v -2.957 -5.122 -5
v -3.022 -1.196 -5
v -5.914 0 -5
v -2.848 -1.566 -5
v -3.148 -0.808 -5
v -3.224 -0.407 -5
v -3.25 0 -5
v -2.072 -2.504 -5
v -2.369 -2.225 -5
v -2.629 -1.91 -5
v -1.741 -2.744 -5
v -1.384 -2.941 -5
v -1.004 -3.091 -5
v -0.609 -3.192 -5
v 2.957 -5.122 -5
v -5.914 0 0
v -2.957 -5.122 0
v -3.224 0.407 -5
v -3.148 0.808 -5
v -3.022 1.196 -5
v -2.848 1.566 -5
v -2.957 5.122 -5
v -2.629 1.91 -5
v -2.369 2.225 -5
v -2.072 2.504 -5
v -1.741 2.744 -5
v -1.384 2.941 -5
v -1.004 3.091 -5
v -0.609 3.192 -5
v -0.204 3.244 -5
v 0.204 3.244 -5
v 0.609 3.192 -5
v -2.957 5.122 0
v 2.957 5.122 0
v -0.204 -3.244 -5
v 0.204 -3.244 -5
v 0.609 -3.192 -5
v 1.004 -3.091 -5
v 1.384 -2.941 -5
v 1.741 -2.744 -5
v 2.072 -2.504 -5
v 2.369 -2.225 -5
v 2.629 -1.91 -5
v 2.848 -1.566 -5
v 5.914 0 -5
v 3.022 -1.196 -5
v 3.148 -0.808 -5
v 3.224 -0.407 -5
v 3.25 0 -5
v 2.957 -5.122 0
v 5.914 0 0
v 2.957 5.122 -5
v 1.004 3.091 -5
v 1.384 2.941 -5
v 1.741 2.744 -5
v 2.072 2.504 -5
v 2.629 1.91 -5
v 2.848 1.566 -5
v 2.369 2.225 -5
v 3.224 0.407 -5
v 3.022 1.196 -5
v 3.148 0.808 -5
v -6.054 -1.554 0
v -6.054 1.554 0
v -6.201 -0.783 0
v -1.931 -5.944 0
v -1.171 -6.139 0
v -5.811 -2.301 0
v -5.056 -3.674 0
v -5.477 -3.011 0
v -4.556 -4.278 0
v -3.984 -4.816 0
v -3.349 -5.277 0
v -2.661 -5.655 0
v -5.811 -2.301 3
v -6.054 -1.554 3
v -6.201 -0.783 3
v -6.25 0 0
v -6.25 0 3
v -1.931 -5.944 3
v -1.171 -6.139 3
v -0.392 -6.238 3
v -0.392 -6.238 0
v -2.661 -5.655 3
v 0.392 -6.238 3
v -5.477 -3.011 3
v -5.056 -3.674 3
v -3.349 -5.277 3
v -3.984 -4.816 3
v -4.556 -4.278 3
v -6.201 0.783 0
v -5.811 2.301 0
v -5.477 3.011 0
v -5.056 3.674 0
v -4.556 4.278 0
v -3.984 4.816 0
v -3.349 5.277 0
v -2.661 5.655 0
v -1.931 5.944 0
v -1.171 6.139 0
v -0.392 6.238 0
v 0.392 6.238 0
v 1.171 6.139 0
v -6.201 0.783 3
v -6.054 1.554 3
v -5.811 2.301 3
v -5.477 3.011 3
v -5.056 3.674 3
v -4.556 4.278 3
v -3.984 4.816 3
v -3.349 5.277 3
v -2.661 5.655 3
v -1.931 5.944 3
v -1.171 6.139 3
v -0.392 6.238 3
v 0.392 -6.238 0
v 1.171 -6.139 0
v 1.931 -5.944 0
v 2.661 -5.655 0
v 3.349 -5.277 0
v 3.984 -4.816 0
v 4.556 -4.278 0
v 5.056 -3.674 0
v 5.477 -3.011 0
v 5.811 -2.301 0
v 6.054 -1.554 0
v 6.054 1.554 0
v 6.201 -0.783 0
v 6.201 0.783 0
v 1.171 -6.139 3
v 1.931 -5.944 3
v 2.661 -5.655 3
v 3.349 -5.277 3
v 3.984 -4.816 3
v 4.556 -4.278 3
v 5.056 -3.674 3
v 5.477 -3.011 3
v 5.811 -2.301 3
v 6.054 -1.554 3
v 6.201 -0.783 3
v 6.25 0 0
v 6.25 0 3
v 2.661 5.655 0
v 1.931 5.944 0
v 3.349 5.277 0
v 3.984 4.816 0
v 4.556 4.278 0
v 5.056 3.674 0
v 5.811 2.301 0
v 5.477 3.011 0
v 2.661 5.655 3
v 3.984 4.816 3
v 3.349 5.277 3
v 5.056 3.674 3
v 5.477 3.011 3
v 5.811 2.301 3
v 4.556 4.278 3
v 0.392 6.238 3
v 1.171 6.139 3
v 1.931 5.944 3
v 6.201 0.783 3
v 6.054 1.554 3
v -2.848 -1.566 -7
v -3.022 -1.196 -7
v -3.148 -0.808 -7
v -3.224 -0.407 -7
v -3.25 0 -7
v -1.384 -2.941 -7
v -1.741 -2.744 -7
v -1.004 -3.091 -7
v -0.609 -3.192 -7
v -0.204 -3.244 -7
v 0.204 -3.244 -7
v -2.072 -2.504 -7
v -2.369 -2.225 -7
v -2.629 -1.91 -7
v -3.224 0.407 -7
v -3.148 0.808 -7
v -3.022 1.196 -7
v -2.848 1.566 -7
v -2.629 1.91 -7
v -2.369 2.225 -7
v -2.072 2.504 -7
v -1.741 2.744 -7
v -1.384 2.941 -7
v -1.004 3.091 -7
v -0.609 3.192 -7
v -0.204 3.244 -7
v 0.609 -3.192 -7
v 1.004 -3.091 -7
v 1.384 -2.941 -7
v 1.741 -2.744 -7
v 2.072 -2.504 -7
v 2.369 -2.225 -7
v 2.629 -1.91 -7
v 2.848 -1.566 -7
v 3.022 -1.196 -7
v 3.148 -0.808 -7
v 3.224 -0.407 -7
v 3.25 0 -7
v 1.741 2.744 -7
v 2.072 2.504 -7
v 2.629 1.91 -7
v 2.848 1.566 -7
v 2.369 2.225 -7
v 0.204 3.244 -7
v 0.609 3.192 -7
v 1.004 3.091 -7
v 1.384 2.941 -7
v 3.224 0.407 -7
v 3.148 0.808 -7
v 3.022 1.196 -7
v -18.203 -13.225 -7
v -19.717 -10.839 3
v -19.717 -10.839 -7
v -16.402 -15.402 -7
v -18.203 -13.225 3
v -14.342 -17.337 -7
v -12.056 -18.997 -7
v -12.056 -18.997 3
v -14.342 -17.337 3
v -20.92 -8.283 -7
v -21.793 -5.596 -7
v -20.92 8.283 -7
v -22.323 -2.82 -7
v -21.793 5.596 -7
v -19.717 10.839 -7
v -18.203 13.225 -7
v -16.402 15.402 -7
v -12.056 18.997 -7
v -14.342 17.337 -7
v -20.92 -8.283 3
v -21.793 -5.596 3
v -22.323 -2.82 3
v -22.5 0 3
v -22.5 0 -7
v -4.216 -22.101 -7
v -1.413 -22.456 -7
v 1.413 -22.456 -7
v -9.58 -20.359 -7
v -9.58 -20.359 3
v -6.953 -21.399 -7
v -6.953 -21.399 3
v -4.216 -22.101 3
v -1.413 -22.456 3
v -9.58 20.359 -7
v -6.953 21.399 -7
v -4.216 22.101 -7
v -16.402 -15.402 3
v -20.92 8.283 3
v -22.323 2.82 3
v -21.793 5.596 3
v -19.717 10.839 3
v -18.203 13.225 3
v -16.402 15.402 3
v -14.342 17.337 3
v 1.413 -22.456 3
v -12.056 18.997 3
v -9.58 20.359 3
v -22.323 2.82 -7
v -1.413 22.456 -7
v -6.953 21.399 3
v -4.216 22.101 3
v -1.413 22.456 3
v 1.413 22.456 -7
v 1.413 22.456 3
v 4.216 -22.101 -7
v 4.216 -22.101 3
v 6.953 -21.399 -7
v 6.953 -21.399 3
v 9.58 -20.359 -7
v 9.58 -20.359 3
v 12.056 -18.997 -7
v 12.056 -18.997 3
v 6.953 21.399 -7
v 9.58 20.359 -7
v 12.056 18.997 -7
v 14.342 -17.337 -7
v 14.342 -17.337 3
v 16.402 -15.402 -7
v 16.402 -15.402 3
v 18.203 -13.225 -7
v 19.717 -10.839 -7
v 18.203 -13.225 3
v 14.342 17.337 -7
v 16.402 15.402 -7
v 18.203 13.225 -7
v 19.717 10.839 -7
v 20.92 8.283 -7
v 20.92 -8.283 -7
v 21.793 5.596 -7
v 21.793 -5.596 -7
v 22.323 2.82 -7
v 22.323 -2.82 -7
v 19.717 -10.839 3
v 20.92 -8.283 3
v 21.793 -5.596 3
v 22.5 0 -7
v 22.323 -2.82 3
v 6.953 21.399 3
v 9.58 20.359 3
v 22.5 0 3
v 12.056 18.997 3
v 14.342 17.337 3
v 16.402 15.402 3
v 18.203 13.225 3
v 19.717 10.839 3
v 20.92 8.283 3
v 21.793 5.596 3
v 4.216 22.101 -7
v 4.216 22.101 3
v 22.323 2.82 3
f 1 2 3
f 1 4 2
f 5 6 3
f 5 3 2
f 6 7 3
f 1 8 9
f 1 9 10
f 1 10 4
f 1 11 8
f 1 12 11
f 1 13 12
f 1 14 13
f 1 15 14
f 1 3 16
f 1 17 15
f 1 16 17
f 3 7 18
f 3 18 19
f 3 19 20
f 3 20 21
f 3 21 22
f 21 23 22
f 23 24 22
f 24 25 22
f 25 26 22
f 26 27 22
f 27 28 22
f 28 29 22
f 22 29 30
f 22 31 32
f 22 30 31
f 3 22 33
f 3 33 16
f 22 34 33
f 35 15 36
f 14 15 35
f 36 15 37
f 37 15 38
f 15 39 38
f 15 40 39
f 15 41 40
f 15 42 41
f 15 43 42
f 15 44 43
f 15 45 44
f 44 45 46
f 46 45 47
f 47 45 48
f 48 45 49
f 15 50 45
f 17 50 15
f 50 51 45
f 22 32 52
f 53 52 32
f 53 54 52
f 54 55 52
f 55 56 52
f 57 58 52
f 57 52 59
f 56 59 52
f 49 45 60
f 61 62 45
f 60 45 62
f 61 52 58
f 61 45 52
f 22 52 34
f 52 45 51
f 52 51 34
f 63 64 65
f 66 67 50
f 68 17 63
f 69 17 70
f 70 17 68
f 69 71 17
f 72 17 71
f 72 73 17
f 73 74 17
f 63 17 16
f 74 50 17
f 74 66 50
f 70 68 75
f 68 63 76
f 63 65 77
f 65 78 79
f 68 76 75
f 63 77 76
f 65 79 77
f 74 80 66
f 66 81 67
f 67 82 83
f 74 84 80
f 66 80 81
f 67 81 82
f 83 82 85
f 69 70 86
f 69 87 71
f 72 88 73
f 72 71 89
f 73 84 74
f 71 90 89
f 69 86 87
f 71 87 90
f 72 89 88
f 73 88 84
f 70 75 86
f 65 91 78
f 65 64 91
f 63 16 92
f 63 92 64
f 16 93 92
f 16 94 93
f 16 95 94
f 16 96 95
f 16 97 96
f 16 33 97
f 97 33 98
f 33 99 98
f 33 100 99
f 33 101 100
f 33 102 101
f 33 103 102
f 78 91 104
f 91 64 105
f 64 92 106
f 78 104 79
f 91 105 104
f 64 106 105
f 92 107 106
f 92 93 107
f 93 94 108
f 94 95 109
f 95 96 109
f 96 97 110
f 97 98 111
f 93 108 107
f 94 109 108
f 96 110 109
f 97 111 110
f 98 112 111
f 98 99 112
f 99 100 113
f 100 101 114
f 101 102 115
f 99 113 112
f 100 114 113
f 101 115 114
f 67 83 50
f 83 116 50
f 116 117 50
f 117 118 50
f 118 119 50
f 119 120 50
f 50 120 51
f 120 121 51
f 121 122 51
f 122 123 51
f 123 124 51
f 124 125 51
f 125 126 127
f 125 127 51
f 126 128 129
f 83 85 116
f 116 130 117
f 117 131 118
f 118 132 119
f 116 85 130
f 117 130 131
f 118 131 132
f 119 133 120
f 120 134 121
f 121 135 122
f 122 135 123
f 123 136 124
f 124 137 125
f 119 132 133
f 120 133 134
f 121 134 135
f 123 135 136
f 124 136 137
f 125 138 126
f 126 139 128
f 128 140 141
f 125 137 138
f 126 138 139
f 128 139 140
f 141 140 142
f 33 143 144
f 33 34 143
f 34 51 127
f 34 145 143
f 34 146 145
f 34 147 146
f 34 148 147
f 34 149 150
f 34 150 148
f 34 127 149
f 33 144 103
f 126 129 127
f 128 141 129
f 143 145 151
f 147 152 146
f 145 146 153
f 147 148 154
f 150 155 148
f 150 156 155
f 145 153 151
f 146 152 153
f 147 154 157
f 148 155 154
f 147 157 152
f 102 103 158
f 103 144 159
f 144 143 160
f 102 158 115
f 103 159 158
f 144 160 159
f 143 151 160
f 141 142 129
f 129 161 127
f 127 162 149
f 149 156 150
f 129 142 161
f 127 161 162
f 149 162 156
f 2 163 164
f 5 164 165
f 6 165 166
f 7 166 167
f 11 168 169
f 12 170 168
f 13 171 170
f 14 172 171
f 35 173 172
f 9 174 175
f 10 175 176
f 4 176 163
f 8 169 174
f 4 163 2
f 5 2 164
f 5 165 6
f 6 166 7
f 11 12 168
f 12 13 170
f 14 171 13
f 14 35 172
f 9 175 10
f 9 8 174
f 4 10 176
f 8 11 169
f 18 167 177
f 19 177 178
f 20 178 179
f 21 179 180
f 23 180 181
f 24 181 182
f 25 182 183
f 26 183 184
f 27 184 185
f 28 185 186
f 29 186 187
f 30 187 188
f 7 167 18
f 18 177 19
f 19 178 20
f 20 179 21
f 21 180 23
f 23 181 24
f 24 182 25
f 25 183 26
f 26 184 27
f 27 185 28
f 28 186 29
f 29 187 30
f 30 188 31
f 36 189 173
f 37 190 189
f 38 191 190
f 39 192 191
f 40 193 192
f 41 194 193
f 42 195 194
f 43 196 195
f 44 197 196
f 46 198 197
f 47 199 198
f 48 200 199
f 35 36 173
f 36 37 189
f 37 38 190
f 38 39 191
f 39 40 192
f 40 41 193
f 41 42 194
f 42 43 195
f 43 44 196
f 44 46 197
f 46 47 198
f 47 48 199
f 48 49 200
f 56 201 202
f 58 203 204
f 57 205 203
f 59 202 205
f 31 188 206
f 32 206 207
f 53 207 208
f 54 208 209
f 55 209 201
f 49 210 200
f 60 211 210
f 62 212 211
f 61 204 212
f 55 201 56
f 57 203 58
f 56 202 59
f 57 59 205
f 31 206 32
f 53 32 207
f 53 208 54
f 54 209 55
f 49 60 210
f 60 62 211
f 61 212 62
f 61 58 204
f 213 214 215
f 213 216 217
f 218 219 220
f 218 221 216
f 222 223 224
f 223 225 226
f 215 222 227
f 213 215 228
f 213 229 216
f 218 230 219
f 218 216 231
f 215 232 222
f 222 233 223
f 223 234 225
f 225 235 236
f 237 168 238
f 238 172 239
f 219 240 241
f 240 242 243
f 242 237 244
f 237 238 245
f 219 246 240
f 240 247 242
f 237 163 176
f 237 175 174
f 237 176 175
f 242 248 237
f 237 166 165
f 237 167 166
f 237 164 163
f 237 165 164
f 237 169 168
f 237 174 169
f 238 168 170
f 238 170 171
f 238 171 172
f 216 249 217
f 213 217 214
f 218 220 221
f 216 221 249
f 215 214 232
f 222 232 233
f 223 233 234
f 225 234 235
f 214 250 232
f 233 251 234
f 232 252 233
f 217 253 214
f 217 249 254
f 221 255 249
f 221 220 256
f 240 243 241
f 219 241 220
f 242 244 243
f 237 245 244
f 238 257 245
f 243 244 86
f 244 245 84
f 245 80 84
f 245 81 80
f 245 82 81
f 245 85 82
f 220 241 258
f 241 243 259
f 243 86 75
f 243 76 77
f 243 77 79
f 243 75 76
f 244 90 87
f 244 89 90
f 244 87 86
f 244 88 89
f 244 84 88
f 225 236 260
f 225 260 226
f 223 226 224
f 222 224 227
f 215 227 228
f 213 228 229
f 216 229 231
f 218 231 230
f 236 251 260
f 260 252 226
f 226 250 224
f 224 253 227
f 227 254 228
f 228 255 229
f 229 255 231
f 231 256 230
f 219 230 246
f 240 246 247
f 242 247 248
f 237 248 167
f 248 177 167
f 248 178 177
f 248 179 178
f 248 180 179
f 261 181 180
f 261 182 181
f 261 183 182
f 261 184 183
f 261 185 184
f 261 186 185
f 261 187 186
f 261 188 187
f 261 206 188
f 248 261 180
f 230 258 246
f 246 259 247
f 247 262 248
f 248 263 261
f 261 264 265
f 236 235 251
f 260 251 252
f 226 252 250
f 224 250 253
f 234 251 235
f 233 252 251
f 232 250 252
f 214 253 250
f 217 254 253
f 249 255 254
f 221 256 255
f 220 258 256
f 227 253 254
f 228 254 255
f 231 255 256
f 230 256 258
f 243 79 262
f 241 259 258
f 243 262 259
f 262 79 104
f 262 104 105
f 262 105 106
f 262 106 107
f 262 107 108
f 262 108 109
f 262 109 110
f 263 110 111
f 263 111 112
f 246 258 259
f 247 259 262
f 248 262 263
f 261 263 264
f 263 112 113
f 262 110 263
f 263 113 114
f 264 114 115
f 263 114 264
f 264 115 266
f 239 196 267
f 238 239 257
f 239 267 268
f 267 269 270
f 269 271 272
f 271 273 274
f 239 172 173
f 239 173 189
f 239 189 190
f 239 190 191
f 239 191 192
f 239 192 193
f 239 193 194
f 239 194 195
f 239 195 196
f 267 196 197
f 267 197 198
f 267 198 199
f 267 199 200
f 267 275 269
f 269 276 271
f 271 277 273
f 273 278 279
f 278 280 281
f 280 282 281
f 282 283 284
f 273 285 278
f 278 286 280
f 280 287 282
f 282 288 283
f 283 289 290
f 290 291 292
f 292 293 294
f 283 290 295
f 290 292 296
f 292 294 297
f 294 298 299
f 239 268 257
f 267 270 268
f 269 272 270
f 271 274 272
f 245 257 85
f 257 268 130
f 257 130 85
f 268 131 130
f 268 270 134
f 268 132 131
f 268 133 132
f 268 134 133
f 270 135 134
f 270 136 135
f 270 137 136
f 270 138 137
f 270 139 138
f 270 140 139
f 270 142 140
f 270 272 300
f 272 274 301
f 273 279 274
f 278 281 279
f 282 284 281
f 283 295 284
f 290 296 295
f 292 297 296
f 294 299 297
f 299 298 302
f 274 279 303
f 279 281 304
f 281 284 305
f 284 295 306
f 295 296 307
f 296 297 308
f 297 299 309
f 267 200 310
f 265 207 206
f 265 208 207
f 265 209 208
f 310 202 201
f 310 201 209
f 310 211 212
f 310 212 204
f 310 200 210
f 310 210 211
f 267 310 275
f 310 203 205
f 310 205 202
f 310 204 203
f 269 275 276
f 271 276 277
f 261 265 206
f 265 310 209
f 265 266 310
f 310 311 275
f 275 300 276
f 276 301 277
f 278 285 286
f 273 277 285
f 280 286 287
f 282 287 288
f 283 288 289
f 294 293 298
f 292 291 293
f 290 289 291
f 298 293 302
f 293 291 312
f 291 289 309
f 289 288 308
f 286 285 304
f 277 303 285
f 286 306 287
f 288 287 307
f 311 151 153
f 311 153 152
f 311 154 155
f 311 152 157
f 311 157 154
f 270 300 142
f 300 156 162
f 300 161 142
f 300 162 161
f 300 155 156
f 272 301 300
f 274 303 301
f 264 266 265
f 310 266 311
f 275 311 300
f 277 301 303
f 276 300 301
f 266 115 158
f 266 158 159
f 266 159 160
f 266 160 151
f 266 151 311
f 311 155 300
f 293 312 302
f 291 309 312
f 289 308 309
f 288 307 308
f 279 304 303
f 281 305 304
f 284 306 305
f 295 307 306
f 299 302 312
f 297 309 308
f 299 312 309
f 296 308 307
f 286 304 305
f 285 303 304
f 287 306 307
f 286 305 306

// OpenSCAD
$fn = 50;

difference() {
	union() {
		translate(v = [0, 0, -7.0]) {
			cylinder(h = 10.0, r = 22.5);
		}
	}
	union() {
		translate(v = [0, 0, 0]) {
			rotate(a = [0, 0, 0]) {
				difference() {
					union() {
						translate(v = [0, 0, -5]) {
							linear_extrude(height = 5) {
								polygon(points = [[5.914249999999999, 0.0], [2.957125, 5.1218907443321156], [-2.9571249999999982, 5.1218907443321156], [-5.914249999999999, 7.242867331857232e-16], [-2.9571250000000022, -5.121890744332115], [2.9571249999999956, -5.121890744332118]]);
							}
						}
					}
					union();
				}
			}
		}
		#cylinder(h = 3, r = 6.25);
		#translate(v = [0, 0, -100.0]) {
			cylinder(h = 200, r = 3.25);
		}
	}
}
